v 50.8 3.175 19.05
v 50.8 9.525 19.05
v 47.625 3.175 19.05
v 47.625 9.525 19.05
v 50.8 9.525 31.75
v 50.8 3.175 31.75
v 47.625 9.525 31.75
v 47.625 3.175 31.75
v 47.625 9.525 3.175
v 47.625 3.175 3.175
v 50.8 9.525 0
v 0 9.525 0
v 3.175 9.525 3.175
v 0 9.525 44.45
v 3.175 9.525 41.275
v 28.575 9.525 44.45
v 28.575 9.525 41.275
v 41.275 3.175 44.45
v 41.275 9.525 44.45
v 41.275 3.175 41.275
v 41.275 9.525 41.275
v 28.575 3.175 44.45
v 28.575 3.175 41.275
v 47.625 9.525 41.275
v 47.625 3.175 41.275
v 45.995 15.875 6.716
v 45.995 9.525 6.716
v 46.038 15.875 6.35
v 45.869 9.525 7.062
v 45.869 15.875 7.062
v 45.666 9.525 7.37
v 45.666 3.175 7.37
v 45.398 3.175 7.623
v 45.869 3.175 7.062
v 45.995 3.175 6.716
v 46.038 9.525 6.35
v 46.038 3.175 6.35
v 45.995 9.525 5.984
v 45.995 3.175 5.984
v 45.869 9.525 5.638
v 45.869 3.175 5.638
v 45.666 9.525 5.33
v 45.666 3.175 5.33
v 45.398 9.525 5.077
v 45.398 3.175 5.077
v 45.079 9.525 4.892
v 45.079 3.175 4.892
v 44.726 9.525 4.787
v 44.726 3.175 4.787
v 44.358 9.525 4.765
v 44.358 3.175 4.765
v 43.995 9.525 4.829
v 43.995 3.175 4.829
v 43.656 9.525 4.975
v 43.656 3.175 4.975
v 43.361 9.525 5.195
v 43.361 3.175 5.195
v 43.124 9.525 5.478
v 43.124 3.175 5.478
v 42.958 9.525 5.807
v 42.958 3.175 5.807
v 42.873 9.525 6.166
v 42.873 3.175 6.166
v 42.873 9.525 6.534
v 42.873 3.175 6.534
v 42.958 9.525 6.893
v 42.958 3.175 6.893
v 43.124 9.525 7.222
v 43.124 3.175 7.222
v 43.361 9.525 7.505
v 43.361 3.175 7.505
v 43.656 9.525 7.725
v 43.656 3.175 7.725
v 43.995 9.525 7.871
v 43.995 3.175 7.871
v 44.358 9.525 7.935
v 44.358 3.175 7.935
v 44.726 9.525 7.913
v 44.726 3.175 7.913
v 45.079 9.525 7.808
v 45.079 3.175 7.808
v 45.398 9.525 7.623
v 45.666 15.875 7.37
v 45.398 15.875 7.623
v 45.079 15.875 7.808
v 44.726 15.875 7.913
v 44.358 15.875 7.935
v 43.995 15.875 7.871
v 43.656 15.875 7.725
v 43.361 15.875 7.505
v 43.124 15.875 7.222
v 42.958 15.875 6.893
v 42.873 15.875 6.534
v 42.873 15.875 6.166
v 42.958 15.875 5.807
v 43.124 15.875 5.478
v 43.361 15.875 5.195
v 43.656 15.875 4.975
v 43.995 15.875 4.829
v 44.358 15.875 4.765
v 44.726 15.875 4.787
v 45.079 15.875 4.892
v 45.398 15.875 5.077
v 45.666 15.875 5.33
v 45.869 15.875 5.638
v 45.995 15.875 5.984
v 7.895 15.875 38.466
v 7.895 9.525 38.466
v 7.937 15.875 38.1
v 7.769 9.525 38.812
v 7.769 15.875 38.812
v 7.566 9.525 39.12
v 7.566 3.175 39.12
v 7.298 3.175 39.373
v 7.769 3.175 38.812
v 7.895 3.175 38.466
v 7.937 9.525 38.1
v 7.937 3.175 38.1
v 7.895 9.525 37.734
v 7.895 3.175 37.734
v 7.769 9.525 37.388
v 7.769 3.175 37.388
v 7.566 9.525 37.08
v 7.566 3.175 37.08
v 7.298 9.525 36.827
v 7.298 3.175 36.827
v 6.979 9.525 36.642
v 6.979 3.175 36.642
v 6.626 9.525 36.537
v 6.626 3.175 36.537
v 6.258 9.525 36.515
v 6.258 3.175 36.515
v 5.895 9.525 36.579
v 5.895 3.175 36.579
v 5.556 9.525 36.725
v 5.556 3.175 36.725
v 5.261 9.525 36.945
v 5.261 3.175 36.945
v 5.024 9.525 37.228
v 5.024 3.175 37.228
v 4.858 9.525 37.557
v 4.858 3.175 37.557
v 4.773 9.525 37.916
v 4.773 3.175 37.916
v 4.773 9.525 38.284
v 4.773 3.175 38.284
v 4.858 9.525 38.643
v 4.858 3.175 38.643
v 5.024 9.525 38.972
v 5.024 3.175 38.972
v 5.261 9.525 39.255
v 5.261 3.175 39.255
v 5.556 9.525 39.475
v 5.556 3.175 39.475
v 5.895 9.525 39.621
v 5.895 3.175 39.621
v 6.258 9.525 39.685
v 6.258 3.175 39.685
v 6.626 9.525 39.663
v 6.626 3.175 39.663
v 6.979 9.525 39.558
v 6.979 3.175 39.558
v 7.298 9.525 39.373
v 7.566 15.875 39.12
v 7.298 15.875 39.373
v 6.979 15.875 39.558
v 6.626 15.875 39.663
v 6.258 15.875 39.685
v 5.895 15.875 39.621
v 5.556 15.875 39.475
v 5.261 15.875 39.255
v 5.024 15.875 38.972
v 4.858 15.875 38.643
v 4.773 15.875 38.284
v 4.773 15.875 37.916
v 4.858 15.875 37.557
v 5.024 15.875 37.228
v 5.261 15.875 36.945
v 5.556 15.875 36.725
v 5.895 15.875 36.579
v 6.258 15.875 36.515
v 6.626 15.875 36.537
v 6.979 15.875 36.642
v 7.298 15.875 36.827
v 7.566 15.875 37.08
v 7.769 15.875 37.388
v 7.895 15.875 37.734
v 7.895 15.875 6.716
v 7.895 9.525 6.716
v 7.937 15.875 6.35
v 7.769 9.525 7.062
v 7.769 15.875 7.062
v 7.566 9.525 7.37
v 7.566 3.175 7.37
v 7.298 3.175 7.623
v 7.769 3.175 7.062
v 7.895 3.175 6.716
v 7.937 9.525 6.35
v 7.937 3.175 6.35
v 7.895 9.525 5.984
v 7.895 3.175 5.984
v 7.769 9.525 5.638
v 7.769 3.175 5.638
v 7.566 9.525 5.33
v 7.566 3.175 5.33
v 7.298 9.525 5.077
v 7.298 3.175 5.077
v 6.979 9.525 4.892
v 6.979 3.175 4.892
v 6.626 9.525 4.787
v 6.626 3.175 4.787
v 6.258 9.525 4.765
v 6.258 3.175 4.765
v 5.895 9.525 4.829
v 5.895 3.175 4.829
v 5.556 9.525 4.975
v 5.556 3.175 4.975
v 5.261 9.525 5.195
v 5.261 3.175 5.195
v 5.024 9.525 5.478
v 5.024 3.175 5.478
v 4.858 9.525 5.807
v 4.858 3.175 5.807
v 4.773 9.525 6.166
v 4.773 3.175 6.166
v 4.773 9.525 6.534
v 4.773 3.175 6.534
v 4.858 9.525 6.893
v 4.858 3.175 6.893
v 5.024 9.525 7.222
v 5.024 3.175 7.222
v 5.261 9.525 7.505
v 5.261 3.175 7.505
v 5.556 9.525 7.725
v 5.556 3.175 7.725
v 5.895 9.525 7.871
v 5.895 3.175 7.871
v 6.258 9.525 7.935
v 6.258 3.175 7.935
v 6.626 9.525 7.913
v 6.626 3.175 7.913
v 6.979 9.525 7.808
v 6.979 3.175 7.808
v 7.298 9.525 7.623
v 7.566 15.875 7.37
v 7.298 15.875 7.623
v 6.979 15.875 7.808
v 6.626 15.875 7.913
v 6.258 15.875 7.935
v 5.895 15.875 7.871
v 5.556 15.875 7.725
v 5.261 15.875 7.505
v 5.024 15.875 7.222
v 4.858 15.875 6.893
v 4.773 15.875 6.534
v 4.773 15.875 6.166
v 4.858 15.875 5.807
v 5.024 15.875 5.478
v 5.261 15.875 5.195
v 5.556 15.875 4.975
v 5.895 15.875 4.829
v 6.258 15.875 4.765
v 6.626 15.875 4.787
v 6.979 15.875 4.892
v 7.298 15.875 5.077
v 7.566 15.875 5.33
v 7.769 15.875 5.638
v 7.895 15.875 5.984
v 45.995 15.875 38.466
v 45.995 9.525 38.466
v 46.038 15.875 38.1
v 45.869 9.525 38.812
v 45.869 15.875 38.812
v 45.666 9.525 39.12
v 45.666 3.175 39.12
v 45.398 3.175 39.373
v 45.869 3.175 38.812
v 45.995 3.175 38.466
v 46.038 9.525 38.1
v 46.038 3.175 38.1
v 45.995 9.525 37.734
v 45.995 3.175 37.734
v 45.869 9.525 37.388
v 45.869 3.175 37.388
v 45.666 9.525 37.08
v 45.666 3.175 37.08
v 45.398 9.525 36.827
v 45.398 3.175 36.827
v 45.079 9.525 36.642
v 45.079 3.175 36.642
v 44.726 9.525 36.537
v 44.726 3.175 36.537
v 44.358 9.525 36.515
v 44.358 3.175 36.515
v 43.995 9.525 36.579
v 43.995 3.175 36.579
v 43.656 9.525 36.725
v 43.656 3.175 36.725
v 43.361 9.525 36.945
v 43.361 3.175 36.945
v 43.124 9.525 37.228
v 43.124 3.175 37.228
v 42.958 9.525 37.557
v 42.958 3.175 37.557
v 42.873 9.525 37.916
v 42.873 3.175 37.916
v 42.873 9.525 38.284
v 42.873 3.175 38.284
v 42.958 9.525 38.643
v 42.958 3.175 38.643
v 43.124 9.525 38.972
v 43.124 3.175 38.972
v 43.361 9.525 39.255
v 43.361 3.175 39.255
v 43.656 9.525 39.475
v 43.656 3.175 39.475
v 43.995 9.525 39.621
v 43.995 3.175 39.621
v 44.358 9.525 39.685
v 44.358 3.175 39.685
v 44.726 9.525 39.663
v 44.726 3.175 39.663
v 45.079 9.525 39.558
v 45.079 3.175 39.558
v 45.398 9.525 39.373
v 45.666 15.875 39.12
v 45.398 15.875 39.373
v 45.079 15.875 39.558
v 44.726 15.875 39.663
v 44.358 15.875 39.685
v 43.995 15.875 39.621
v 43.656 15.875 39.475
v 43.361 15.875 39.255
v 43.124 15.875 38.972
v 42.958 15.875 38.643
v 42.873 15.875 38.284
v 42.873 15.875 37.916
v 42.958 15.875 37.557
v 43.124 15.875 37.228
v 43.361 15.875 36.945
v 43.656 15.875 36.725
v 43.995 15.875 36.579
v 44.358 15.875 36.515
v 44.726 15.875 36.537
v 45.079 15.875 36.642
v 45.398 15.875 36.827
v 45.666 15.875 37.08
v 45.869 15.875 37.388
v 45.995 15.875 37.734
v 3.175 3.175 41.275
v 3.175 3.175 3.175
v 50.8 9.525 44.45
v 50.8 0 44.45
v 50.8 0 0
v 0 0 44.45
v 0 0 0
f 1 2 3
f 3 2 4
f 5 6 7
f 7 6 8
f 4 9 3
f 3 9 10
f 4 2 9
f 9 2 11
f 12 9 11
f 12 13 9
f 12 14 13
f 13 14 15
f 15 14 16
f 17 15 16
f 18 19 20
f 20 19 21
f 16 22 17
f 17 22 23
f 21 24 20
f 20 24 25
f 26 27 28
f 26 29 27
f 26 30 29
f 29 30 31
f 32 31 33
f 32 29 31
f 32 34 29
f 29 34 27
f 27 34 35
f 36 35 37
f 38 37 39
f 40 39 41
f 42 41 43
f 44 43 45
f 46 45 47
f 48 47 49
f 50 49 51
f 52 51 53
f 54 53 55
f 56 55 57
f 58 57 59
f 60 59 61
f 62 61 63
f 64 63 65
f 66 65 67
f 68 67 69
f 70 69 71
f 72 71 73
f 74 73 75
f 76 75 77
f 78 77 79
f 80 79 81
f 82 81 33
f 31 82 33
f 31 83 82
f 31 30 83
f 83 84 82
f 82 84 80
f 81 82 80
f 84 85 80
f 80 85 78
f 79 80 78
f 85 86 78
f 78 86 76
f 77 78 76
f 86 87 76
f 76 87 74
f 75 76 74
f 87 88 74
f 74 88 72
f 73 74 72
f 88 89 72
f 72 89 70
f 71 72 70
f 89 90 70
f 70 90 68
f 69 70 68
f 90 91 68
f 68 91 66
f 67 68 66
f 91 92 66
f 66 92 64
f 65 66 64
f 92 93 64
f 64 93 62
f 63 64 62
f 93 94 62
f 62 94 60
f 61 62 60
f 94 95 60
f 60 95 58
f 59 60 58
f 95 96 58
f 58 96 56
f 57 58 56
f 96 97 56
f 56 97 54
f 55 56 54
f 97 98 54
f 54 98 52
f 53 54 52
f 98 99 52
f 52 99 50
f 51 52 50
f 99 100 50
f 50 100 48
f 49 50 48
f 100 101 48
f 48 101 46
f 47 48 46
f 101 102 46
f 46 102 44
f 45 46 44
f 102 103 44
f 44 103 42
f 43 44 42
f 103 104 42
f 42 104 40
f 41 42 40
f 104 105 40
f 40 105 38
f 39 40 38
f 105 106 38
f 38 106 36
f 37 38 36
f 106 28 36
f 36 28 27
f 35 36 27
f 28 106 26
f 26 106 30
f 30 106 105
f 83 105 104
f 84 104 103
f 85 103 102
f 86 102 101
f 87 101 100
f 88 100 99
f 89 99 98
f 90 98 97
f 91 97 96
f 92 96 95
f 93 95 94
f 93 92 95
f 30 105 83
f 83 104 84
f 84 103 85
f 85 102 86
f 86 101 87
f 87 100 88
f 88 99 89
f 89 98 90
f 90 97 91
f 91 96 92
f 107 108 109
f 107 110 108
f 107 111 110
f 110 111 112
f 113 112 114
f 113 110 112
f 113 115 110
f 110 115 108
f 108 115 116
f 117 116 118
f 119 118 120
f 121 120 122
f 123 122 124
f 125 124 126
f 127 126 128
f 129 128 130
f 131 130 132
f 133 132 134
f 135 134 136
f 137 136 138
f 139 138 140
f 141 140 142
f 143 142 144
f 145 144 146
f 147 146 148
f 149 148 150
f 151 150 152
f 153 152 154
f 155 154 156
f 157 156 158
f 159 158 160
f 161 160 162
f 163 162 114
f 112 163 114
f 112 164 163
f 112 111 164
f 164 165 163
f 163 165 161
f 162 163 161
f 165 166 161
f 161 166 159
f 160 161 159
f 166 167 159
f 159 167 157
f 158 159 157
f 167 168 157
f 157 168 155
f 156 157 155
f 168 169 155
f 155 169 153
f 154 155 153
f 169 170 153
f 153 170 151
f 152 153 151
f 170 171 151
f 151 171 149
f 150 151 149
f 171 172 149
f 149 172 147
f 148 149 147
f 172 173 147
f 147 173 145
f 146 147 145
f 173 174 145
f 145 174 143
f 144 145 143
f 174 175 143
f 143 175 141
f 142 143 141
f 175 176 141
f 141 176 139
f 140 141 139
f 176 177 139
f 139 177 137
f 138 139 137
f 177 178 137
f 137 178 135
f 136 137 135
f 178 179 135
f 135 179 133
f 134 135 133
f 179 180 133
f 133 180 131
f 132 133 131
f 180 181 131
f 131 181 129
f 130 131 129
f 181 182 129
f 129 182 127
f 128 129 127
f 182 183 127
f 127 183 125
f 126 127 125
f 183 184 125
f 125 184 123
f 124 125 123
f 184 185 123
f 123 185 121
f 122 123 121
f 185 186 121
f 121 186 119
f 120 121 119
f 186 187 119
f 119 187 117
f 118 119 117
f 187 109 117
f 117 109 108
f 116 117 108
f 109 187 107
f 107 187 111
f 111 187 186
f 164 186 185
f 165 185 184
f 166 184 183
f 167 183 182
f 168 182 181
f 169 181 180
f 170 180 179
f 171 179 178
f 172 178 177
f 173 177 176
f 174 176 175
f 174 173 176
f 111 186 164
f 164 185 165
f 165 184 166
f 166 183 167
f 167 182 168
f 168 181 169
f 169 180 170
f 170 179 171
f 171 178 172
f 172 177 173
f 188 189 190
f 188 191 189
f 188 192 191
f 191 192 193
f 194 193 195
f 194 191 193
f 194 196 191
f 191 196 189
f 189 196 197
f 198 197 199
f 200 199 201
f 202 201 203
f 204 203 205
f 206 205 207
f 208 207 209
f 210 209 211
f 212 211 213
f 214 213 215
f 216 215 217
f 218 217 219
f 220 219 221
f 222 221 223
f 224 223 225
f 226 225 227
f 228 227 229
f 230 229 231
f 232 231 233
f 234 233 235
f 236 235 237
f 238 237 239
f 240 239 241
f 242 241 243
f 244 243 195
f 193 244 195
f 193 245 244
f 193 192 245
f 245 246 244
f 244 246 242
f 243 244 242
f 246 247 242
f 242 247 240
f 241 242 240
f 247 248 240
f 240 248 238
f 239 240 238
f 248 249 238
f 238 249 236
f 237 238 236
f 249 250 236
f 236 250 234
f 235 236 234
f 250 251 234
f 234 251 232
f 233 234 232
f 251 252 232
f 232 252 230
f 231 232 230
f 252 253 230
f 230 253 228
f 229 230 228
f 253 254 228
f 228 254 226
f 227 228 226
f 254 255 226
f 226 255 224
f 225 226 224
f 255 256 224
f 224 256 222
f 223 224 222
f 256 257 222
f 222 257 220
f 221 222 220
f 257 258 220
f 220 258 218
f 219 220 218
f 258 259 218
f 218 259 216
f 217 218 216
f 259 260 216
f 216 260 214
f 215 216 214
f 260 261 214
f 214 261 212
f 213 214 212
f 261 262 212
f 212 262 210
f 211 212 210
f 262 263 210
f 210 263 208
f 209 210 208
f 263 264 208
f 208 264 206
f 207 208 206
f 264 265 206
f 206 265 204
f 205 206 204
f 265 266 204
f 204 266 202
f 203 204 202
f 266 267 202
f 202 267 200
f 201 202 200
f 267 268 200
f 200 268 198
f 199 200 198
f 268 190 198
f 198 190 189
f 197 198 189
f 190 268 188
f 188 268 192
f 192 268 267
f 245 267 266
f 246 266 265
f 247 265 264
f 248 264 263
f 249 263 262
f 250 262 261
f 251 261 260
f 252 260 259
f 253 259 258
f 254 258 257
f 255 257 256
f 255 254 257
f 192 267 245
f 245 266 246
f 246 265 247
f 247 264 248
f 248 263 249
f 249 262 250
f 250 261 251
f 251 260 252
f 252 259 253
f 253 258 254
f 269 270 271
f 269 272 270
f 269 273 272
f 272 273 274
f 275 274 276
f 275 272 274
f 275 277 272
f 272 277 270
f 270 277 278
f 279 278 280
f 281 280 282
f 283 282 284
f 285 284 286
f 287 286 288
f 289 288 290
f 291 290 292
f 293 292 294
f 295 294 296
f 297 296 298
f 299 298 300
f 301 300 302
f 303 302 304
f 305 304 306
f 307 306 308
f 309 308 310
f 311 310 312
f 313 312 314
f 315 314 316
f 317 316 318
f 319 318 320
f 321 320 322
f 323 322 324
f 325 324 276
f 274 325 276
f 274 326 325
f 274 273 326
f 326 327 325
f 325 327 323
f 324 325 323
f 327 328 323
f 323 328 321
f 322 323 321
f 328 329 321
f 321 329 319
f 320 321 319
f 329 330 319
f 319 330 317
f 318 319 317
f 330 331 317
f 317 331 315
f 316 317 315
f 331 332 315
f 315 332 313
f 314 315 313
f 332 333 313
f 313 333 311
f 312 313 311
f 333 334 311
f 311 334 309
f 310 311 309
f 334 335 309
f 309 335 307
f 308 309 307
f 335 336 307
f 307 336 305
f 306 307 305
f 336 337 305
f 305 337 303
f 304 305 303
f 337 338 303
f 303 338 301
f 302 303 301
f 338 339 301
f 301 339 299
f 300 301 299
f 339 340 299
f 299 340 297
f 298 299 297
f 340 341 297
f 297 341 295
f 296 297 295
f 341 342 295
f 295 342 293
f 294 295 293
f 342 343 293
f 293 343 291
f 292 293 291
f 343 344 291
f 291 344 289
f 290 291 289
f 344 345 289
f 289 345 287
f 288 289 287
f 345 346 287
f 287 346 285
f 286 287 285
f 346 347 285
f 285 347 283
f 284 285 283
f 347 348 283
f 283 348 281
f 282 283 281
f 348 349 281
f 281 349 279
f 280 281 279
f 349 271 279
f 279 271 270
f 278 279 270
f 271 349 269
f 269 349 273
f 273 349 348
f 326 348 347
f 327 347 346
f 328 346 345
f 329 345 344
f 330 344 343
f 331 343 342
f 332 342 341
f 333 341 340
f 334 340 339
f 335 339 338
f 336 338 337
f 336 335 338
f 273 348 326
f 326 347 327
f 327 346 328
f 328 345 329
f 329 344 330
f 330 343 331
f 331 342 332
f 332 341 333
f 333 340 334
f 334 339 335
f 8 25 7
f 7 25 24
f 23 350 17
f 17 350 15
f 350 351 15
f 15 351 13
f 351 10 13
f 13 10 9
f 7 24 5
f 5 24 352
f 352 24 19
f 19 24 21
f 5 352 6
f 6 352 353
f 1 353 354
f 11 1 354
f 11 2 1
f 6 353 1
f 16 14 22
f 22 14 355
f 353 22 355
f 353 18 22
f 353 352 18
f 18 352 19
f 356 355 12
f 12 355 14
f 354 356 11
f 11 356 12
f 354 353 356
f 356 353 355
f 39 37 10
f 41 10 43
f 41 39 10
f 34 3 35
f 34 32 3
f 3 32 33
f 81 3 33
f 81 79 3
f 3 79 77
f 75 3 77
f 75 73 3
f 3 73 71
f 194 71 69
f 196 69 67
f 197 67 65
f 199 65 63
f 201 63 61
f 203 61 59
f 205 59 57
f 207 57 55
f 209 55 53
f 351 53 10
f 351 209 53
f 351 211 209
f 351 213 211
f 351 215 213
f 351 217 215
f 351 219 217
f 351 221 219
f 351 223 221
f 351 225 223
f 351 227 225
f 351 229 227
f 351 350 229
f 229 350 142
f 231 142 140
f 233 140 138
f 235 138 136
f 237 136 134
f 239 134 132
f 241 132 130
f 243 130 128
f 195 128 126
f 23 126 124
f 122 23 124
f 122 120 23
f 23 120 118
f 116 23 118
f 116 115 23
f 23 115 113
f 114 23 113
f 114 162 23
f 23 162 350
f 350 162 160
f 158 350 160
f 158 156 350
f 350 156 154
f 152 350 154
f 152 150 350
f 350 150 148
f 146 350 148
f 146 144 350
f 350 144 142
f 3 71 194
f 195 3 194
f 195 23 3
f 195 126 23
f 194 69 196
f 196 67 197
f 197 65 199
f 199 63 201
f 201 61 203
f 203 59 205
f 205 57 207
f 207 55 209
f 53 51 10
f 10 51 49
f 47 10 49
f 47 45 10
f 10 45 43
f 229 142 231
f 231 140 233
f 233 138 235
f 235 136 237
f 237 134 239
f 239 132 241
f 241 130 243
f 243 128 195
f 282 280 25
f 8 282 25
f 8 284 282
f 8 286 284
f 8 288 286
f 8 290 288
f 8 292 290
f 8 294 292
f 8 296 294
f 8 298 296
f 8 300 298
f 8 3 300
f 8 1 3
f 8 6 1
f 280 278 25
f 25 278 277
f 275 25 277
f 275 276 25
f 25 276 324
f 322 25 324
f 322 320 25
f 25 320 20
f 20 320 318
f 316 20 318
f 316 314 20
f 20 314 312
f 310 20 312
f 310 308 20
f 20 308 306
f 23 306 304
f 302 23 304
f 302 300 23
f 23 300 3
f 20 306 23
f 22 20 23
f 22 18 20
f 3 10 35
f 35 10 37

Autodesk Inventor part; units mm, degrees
ref_plane "YZ Plane" through (0, 0, 0) normal (1, 0, 0) x (0, 1, 0)
ref_plane "XZ Plane" through (0, 0, 0) normal (0, 1, 0) x (-1, 0, 0)
ref_plane "XY Plane" through (0, 0, 0) normal (0, 0, 1) x (1, 0, 0)
sketch "Sketch1" plane through (0, 0, 0) normal (0, 1, 0) x (-1, 0, 0)
  line L0 (0, 0) -> (-50.8, 0)
  line L1 (-50.8, 0) -> (-50.8, 44.45)
  line L2 (-50.8, 44.45) -> (0, 44.45)
  line L3 (0, 44.45) -> (0, 0)
  dimension "d0" = 44.45
  dimension "d1" = 50.8
extrude "Extrusion1" add sketch "Sketch1" along normal blind 3.175
sketch "Sketch2" plane through (0, 3.175, 0) normal (0, 1, 0) x (1, 0, 0)
  line L0 (50.8, 0) -> (0, 0) projected
  line L1 (0, 0) -> (0, -44.45) projected
  line L2 (0, -44.45) -> (50.8, -44.45) projected
  line L3 (50.8, -44.45) -> (50.8, 0) projected
  line L4 (3.175, -3.175) -> (47.625, -3.175)
  line L5 (47.625, -3.175) -> (47.625, -41.275)
  line L6 (47.625, -41.275) -> (3.175, -41.275)
  line L7 (3.175, -41.275) -> (3.175, -3.175)
  dimension "d4" = 3.175
  dimension "d5" = 3.175
  dimension "d6" = 3.175
  dimension "d7" = 3.175
extrude "Extrusion2" add sketch "Sketch2" along normal blind 6.35
sketch "Sketch3" plane through (0, 3.175, 0) normal (0, 1, 0) x (1, 0, 0)
  line L0 (47.625, -41.275) -> (47.625, -3.175) projected
  line L1 (47.625, -3.175) -> (3.175, -3.175) projected
  line L2 (3.175, -3.175) -> (3.175, -41.275) projected
  line L3 (3.175, -41.275) -> (47.625, -41.275) projected
  circle A0 centre (6.35, -38.1) radius 1.5875
  circle A1 centre (6.35, -6.35) radius 1.5875
  circle A2 centre (44.45, -6.35) radius 1.5875
  circle A3 centre (44.45, -38.1) radius 1.5875
  point P0 (0, 0)
  dimension "d10" = 3.175
  dimension "d11" = 3.175
  dimension "d12" = 3.175
  dimension "d13" = 3.175
  dimension "d14" = 3.175
  dimension "d15" = 3.175
  dimension "d16" = 3.175
  dimension "d17" = 3.175
  dimension "d18" = 3.175
  dimension "d19" = 3.175
  dimension "d20" = 3.175
  dimension "d21" = 3.175
extrude "Extrusion3" add sketch "Sketch3" along normal blind 12.7 contours A0 | A1 | A2 | A3
sketch "Sketch4" plane through (0, 0, 44.45) normal (0, 0, 1) x (1, 0, 0)
  line L0 (0, 9.525) -> (50.8, 9.525) projected
  line L1 (0, 0) -> (0, 9.525) projected
  line L2 (28.575, 9.525) -> (41.275, 9.525)
  line L3 (41.275, 9.525) -> (41.275, 3.175)
  line L4 (41.275, 3.175) -> (28.575, 3.175)
  line L5 (28.575, 3.175) -> (28.575, 9.525)
  dimension "d24" = 6.35
  dimension "d25" = 28.575
  dimension "d27" = 41.275
extrude "Extrusion4" cut sketch "Sketch4" against normal blind 3.175
sketch "Sketch5" plane through (50.8, 0, 44.45) normal (1, 0, 0) x (0, 0, -1)
  line L0 (0, 9.525) -> (44.45, 9.525) projected
  line L1 (0, 0) -> (0, 9.525) projected
  line L2 (12.7, 9.525) -> (25.4, 9.525)
  line L3 (25.4, 9.525) -> (25.4, 3.175)
  line L4 (25.4, 3.175) -> (12.7, 3.175)
  line L5 (12.7, 3.175) -> (12.7, 9.525)
  dimension "d30" = 12.7
  dimension "d31" = 25.4
  dimension "d32" = 6.35
extrude "Extrusion5" cut sketch "Sketch5" against normal blind 3.175
sketch "Sketch6" plane through (0, 3.175, 0) normal (0, 1, 0) x (1, 0, 0)
  circle A0 centre (44.45, -6.35) radius 1.5875 projected
  circle A1 centre (6.35, -38.1) radius 1.5875 projected
  circle A2 centre (6.35, -6.35) radius 1.5875 projected
  circle A3 centre (44.45, -38.1) radius 1.5875 projected
  line L0 (47.625, -41.275) -> (47.625, -31.75) projected
  line L1 (50.8, -31.75) -> (47.625, -31.75) projected
  line L2 (50.8, -19.05) -> (50.8, -31.75) projected
  line L3 (50.8, -19.05) -> (47.625, -19.05) projected
  line L4 (47.625, -19.05) -> (47.625, -3.175) projected
  line L5 (47.625, -3.175) -> (3.175, -3.175) projected
  line L6 (3.175, -3.175) -> (3.175, -41.275) projected
  line L7 (3.175, -41.275) -> (28.575, -41.275) projected
  line L8 (28.575, -44.45) -> (28.575, -41.275) projected
  line L9 (41.275, -44.45) -> (28.575, -44.45) projected
  line L10 (41.275, -44.45) -> (41.275, -41.275) projected
  line L11 (41.275, -41.275) -> (47.625, -41.275) projected
  point P0 (0, 0)
properties part number "Casing Bottom"
